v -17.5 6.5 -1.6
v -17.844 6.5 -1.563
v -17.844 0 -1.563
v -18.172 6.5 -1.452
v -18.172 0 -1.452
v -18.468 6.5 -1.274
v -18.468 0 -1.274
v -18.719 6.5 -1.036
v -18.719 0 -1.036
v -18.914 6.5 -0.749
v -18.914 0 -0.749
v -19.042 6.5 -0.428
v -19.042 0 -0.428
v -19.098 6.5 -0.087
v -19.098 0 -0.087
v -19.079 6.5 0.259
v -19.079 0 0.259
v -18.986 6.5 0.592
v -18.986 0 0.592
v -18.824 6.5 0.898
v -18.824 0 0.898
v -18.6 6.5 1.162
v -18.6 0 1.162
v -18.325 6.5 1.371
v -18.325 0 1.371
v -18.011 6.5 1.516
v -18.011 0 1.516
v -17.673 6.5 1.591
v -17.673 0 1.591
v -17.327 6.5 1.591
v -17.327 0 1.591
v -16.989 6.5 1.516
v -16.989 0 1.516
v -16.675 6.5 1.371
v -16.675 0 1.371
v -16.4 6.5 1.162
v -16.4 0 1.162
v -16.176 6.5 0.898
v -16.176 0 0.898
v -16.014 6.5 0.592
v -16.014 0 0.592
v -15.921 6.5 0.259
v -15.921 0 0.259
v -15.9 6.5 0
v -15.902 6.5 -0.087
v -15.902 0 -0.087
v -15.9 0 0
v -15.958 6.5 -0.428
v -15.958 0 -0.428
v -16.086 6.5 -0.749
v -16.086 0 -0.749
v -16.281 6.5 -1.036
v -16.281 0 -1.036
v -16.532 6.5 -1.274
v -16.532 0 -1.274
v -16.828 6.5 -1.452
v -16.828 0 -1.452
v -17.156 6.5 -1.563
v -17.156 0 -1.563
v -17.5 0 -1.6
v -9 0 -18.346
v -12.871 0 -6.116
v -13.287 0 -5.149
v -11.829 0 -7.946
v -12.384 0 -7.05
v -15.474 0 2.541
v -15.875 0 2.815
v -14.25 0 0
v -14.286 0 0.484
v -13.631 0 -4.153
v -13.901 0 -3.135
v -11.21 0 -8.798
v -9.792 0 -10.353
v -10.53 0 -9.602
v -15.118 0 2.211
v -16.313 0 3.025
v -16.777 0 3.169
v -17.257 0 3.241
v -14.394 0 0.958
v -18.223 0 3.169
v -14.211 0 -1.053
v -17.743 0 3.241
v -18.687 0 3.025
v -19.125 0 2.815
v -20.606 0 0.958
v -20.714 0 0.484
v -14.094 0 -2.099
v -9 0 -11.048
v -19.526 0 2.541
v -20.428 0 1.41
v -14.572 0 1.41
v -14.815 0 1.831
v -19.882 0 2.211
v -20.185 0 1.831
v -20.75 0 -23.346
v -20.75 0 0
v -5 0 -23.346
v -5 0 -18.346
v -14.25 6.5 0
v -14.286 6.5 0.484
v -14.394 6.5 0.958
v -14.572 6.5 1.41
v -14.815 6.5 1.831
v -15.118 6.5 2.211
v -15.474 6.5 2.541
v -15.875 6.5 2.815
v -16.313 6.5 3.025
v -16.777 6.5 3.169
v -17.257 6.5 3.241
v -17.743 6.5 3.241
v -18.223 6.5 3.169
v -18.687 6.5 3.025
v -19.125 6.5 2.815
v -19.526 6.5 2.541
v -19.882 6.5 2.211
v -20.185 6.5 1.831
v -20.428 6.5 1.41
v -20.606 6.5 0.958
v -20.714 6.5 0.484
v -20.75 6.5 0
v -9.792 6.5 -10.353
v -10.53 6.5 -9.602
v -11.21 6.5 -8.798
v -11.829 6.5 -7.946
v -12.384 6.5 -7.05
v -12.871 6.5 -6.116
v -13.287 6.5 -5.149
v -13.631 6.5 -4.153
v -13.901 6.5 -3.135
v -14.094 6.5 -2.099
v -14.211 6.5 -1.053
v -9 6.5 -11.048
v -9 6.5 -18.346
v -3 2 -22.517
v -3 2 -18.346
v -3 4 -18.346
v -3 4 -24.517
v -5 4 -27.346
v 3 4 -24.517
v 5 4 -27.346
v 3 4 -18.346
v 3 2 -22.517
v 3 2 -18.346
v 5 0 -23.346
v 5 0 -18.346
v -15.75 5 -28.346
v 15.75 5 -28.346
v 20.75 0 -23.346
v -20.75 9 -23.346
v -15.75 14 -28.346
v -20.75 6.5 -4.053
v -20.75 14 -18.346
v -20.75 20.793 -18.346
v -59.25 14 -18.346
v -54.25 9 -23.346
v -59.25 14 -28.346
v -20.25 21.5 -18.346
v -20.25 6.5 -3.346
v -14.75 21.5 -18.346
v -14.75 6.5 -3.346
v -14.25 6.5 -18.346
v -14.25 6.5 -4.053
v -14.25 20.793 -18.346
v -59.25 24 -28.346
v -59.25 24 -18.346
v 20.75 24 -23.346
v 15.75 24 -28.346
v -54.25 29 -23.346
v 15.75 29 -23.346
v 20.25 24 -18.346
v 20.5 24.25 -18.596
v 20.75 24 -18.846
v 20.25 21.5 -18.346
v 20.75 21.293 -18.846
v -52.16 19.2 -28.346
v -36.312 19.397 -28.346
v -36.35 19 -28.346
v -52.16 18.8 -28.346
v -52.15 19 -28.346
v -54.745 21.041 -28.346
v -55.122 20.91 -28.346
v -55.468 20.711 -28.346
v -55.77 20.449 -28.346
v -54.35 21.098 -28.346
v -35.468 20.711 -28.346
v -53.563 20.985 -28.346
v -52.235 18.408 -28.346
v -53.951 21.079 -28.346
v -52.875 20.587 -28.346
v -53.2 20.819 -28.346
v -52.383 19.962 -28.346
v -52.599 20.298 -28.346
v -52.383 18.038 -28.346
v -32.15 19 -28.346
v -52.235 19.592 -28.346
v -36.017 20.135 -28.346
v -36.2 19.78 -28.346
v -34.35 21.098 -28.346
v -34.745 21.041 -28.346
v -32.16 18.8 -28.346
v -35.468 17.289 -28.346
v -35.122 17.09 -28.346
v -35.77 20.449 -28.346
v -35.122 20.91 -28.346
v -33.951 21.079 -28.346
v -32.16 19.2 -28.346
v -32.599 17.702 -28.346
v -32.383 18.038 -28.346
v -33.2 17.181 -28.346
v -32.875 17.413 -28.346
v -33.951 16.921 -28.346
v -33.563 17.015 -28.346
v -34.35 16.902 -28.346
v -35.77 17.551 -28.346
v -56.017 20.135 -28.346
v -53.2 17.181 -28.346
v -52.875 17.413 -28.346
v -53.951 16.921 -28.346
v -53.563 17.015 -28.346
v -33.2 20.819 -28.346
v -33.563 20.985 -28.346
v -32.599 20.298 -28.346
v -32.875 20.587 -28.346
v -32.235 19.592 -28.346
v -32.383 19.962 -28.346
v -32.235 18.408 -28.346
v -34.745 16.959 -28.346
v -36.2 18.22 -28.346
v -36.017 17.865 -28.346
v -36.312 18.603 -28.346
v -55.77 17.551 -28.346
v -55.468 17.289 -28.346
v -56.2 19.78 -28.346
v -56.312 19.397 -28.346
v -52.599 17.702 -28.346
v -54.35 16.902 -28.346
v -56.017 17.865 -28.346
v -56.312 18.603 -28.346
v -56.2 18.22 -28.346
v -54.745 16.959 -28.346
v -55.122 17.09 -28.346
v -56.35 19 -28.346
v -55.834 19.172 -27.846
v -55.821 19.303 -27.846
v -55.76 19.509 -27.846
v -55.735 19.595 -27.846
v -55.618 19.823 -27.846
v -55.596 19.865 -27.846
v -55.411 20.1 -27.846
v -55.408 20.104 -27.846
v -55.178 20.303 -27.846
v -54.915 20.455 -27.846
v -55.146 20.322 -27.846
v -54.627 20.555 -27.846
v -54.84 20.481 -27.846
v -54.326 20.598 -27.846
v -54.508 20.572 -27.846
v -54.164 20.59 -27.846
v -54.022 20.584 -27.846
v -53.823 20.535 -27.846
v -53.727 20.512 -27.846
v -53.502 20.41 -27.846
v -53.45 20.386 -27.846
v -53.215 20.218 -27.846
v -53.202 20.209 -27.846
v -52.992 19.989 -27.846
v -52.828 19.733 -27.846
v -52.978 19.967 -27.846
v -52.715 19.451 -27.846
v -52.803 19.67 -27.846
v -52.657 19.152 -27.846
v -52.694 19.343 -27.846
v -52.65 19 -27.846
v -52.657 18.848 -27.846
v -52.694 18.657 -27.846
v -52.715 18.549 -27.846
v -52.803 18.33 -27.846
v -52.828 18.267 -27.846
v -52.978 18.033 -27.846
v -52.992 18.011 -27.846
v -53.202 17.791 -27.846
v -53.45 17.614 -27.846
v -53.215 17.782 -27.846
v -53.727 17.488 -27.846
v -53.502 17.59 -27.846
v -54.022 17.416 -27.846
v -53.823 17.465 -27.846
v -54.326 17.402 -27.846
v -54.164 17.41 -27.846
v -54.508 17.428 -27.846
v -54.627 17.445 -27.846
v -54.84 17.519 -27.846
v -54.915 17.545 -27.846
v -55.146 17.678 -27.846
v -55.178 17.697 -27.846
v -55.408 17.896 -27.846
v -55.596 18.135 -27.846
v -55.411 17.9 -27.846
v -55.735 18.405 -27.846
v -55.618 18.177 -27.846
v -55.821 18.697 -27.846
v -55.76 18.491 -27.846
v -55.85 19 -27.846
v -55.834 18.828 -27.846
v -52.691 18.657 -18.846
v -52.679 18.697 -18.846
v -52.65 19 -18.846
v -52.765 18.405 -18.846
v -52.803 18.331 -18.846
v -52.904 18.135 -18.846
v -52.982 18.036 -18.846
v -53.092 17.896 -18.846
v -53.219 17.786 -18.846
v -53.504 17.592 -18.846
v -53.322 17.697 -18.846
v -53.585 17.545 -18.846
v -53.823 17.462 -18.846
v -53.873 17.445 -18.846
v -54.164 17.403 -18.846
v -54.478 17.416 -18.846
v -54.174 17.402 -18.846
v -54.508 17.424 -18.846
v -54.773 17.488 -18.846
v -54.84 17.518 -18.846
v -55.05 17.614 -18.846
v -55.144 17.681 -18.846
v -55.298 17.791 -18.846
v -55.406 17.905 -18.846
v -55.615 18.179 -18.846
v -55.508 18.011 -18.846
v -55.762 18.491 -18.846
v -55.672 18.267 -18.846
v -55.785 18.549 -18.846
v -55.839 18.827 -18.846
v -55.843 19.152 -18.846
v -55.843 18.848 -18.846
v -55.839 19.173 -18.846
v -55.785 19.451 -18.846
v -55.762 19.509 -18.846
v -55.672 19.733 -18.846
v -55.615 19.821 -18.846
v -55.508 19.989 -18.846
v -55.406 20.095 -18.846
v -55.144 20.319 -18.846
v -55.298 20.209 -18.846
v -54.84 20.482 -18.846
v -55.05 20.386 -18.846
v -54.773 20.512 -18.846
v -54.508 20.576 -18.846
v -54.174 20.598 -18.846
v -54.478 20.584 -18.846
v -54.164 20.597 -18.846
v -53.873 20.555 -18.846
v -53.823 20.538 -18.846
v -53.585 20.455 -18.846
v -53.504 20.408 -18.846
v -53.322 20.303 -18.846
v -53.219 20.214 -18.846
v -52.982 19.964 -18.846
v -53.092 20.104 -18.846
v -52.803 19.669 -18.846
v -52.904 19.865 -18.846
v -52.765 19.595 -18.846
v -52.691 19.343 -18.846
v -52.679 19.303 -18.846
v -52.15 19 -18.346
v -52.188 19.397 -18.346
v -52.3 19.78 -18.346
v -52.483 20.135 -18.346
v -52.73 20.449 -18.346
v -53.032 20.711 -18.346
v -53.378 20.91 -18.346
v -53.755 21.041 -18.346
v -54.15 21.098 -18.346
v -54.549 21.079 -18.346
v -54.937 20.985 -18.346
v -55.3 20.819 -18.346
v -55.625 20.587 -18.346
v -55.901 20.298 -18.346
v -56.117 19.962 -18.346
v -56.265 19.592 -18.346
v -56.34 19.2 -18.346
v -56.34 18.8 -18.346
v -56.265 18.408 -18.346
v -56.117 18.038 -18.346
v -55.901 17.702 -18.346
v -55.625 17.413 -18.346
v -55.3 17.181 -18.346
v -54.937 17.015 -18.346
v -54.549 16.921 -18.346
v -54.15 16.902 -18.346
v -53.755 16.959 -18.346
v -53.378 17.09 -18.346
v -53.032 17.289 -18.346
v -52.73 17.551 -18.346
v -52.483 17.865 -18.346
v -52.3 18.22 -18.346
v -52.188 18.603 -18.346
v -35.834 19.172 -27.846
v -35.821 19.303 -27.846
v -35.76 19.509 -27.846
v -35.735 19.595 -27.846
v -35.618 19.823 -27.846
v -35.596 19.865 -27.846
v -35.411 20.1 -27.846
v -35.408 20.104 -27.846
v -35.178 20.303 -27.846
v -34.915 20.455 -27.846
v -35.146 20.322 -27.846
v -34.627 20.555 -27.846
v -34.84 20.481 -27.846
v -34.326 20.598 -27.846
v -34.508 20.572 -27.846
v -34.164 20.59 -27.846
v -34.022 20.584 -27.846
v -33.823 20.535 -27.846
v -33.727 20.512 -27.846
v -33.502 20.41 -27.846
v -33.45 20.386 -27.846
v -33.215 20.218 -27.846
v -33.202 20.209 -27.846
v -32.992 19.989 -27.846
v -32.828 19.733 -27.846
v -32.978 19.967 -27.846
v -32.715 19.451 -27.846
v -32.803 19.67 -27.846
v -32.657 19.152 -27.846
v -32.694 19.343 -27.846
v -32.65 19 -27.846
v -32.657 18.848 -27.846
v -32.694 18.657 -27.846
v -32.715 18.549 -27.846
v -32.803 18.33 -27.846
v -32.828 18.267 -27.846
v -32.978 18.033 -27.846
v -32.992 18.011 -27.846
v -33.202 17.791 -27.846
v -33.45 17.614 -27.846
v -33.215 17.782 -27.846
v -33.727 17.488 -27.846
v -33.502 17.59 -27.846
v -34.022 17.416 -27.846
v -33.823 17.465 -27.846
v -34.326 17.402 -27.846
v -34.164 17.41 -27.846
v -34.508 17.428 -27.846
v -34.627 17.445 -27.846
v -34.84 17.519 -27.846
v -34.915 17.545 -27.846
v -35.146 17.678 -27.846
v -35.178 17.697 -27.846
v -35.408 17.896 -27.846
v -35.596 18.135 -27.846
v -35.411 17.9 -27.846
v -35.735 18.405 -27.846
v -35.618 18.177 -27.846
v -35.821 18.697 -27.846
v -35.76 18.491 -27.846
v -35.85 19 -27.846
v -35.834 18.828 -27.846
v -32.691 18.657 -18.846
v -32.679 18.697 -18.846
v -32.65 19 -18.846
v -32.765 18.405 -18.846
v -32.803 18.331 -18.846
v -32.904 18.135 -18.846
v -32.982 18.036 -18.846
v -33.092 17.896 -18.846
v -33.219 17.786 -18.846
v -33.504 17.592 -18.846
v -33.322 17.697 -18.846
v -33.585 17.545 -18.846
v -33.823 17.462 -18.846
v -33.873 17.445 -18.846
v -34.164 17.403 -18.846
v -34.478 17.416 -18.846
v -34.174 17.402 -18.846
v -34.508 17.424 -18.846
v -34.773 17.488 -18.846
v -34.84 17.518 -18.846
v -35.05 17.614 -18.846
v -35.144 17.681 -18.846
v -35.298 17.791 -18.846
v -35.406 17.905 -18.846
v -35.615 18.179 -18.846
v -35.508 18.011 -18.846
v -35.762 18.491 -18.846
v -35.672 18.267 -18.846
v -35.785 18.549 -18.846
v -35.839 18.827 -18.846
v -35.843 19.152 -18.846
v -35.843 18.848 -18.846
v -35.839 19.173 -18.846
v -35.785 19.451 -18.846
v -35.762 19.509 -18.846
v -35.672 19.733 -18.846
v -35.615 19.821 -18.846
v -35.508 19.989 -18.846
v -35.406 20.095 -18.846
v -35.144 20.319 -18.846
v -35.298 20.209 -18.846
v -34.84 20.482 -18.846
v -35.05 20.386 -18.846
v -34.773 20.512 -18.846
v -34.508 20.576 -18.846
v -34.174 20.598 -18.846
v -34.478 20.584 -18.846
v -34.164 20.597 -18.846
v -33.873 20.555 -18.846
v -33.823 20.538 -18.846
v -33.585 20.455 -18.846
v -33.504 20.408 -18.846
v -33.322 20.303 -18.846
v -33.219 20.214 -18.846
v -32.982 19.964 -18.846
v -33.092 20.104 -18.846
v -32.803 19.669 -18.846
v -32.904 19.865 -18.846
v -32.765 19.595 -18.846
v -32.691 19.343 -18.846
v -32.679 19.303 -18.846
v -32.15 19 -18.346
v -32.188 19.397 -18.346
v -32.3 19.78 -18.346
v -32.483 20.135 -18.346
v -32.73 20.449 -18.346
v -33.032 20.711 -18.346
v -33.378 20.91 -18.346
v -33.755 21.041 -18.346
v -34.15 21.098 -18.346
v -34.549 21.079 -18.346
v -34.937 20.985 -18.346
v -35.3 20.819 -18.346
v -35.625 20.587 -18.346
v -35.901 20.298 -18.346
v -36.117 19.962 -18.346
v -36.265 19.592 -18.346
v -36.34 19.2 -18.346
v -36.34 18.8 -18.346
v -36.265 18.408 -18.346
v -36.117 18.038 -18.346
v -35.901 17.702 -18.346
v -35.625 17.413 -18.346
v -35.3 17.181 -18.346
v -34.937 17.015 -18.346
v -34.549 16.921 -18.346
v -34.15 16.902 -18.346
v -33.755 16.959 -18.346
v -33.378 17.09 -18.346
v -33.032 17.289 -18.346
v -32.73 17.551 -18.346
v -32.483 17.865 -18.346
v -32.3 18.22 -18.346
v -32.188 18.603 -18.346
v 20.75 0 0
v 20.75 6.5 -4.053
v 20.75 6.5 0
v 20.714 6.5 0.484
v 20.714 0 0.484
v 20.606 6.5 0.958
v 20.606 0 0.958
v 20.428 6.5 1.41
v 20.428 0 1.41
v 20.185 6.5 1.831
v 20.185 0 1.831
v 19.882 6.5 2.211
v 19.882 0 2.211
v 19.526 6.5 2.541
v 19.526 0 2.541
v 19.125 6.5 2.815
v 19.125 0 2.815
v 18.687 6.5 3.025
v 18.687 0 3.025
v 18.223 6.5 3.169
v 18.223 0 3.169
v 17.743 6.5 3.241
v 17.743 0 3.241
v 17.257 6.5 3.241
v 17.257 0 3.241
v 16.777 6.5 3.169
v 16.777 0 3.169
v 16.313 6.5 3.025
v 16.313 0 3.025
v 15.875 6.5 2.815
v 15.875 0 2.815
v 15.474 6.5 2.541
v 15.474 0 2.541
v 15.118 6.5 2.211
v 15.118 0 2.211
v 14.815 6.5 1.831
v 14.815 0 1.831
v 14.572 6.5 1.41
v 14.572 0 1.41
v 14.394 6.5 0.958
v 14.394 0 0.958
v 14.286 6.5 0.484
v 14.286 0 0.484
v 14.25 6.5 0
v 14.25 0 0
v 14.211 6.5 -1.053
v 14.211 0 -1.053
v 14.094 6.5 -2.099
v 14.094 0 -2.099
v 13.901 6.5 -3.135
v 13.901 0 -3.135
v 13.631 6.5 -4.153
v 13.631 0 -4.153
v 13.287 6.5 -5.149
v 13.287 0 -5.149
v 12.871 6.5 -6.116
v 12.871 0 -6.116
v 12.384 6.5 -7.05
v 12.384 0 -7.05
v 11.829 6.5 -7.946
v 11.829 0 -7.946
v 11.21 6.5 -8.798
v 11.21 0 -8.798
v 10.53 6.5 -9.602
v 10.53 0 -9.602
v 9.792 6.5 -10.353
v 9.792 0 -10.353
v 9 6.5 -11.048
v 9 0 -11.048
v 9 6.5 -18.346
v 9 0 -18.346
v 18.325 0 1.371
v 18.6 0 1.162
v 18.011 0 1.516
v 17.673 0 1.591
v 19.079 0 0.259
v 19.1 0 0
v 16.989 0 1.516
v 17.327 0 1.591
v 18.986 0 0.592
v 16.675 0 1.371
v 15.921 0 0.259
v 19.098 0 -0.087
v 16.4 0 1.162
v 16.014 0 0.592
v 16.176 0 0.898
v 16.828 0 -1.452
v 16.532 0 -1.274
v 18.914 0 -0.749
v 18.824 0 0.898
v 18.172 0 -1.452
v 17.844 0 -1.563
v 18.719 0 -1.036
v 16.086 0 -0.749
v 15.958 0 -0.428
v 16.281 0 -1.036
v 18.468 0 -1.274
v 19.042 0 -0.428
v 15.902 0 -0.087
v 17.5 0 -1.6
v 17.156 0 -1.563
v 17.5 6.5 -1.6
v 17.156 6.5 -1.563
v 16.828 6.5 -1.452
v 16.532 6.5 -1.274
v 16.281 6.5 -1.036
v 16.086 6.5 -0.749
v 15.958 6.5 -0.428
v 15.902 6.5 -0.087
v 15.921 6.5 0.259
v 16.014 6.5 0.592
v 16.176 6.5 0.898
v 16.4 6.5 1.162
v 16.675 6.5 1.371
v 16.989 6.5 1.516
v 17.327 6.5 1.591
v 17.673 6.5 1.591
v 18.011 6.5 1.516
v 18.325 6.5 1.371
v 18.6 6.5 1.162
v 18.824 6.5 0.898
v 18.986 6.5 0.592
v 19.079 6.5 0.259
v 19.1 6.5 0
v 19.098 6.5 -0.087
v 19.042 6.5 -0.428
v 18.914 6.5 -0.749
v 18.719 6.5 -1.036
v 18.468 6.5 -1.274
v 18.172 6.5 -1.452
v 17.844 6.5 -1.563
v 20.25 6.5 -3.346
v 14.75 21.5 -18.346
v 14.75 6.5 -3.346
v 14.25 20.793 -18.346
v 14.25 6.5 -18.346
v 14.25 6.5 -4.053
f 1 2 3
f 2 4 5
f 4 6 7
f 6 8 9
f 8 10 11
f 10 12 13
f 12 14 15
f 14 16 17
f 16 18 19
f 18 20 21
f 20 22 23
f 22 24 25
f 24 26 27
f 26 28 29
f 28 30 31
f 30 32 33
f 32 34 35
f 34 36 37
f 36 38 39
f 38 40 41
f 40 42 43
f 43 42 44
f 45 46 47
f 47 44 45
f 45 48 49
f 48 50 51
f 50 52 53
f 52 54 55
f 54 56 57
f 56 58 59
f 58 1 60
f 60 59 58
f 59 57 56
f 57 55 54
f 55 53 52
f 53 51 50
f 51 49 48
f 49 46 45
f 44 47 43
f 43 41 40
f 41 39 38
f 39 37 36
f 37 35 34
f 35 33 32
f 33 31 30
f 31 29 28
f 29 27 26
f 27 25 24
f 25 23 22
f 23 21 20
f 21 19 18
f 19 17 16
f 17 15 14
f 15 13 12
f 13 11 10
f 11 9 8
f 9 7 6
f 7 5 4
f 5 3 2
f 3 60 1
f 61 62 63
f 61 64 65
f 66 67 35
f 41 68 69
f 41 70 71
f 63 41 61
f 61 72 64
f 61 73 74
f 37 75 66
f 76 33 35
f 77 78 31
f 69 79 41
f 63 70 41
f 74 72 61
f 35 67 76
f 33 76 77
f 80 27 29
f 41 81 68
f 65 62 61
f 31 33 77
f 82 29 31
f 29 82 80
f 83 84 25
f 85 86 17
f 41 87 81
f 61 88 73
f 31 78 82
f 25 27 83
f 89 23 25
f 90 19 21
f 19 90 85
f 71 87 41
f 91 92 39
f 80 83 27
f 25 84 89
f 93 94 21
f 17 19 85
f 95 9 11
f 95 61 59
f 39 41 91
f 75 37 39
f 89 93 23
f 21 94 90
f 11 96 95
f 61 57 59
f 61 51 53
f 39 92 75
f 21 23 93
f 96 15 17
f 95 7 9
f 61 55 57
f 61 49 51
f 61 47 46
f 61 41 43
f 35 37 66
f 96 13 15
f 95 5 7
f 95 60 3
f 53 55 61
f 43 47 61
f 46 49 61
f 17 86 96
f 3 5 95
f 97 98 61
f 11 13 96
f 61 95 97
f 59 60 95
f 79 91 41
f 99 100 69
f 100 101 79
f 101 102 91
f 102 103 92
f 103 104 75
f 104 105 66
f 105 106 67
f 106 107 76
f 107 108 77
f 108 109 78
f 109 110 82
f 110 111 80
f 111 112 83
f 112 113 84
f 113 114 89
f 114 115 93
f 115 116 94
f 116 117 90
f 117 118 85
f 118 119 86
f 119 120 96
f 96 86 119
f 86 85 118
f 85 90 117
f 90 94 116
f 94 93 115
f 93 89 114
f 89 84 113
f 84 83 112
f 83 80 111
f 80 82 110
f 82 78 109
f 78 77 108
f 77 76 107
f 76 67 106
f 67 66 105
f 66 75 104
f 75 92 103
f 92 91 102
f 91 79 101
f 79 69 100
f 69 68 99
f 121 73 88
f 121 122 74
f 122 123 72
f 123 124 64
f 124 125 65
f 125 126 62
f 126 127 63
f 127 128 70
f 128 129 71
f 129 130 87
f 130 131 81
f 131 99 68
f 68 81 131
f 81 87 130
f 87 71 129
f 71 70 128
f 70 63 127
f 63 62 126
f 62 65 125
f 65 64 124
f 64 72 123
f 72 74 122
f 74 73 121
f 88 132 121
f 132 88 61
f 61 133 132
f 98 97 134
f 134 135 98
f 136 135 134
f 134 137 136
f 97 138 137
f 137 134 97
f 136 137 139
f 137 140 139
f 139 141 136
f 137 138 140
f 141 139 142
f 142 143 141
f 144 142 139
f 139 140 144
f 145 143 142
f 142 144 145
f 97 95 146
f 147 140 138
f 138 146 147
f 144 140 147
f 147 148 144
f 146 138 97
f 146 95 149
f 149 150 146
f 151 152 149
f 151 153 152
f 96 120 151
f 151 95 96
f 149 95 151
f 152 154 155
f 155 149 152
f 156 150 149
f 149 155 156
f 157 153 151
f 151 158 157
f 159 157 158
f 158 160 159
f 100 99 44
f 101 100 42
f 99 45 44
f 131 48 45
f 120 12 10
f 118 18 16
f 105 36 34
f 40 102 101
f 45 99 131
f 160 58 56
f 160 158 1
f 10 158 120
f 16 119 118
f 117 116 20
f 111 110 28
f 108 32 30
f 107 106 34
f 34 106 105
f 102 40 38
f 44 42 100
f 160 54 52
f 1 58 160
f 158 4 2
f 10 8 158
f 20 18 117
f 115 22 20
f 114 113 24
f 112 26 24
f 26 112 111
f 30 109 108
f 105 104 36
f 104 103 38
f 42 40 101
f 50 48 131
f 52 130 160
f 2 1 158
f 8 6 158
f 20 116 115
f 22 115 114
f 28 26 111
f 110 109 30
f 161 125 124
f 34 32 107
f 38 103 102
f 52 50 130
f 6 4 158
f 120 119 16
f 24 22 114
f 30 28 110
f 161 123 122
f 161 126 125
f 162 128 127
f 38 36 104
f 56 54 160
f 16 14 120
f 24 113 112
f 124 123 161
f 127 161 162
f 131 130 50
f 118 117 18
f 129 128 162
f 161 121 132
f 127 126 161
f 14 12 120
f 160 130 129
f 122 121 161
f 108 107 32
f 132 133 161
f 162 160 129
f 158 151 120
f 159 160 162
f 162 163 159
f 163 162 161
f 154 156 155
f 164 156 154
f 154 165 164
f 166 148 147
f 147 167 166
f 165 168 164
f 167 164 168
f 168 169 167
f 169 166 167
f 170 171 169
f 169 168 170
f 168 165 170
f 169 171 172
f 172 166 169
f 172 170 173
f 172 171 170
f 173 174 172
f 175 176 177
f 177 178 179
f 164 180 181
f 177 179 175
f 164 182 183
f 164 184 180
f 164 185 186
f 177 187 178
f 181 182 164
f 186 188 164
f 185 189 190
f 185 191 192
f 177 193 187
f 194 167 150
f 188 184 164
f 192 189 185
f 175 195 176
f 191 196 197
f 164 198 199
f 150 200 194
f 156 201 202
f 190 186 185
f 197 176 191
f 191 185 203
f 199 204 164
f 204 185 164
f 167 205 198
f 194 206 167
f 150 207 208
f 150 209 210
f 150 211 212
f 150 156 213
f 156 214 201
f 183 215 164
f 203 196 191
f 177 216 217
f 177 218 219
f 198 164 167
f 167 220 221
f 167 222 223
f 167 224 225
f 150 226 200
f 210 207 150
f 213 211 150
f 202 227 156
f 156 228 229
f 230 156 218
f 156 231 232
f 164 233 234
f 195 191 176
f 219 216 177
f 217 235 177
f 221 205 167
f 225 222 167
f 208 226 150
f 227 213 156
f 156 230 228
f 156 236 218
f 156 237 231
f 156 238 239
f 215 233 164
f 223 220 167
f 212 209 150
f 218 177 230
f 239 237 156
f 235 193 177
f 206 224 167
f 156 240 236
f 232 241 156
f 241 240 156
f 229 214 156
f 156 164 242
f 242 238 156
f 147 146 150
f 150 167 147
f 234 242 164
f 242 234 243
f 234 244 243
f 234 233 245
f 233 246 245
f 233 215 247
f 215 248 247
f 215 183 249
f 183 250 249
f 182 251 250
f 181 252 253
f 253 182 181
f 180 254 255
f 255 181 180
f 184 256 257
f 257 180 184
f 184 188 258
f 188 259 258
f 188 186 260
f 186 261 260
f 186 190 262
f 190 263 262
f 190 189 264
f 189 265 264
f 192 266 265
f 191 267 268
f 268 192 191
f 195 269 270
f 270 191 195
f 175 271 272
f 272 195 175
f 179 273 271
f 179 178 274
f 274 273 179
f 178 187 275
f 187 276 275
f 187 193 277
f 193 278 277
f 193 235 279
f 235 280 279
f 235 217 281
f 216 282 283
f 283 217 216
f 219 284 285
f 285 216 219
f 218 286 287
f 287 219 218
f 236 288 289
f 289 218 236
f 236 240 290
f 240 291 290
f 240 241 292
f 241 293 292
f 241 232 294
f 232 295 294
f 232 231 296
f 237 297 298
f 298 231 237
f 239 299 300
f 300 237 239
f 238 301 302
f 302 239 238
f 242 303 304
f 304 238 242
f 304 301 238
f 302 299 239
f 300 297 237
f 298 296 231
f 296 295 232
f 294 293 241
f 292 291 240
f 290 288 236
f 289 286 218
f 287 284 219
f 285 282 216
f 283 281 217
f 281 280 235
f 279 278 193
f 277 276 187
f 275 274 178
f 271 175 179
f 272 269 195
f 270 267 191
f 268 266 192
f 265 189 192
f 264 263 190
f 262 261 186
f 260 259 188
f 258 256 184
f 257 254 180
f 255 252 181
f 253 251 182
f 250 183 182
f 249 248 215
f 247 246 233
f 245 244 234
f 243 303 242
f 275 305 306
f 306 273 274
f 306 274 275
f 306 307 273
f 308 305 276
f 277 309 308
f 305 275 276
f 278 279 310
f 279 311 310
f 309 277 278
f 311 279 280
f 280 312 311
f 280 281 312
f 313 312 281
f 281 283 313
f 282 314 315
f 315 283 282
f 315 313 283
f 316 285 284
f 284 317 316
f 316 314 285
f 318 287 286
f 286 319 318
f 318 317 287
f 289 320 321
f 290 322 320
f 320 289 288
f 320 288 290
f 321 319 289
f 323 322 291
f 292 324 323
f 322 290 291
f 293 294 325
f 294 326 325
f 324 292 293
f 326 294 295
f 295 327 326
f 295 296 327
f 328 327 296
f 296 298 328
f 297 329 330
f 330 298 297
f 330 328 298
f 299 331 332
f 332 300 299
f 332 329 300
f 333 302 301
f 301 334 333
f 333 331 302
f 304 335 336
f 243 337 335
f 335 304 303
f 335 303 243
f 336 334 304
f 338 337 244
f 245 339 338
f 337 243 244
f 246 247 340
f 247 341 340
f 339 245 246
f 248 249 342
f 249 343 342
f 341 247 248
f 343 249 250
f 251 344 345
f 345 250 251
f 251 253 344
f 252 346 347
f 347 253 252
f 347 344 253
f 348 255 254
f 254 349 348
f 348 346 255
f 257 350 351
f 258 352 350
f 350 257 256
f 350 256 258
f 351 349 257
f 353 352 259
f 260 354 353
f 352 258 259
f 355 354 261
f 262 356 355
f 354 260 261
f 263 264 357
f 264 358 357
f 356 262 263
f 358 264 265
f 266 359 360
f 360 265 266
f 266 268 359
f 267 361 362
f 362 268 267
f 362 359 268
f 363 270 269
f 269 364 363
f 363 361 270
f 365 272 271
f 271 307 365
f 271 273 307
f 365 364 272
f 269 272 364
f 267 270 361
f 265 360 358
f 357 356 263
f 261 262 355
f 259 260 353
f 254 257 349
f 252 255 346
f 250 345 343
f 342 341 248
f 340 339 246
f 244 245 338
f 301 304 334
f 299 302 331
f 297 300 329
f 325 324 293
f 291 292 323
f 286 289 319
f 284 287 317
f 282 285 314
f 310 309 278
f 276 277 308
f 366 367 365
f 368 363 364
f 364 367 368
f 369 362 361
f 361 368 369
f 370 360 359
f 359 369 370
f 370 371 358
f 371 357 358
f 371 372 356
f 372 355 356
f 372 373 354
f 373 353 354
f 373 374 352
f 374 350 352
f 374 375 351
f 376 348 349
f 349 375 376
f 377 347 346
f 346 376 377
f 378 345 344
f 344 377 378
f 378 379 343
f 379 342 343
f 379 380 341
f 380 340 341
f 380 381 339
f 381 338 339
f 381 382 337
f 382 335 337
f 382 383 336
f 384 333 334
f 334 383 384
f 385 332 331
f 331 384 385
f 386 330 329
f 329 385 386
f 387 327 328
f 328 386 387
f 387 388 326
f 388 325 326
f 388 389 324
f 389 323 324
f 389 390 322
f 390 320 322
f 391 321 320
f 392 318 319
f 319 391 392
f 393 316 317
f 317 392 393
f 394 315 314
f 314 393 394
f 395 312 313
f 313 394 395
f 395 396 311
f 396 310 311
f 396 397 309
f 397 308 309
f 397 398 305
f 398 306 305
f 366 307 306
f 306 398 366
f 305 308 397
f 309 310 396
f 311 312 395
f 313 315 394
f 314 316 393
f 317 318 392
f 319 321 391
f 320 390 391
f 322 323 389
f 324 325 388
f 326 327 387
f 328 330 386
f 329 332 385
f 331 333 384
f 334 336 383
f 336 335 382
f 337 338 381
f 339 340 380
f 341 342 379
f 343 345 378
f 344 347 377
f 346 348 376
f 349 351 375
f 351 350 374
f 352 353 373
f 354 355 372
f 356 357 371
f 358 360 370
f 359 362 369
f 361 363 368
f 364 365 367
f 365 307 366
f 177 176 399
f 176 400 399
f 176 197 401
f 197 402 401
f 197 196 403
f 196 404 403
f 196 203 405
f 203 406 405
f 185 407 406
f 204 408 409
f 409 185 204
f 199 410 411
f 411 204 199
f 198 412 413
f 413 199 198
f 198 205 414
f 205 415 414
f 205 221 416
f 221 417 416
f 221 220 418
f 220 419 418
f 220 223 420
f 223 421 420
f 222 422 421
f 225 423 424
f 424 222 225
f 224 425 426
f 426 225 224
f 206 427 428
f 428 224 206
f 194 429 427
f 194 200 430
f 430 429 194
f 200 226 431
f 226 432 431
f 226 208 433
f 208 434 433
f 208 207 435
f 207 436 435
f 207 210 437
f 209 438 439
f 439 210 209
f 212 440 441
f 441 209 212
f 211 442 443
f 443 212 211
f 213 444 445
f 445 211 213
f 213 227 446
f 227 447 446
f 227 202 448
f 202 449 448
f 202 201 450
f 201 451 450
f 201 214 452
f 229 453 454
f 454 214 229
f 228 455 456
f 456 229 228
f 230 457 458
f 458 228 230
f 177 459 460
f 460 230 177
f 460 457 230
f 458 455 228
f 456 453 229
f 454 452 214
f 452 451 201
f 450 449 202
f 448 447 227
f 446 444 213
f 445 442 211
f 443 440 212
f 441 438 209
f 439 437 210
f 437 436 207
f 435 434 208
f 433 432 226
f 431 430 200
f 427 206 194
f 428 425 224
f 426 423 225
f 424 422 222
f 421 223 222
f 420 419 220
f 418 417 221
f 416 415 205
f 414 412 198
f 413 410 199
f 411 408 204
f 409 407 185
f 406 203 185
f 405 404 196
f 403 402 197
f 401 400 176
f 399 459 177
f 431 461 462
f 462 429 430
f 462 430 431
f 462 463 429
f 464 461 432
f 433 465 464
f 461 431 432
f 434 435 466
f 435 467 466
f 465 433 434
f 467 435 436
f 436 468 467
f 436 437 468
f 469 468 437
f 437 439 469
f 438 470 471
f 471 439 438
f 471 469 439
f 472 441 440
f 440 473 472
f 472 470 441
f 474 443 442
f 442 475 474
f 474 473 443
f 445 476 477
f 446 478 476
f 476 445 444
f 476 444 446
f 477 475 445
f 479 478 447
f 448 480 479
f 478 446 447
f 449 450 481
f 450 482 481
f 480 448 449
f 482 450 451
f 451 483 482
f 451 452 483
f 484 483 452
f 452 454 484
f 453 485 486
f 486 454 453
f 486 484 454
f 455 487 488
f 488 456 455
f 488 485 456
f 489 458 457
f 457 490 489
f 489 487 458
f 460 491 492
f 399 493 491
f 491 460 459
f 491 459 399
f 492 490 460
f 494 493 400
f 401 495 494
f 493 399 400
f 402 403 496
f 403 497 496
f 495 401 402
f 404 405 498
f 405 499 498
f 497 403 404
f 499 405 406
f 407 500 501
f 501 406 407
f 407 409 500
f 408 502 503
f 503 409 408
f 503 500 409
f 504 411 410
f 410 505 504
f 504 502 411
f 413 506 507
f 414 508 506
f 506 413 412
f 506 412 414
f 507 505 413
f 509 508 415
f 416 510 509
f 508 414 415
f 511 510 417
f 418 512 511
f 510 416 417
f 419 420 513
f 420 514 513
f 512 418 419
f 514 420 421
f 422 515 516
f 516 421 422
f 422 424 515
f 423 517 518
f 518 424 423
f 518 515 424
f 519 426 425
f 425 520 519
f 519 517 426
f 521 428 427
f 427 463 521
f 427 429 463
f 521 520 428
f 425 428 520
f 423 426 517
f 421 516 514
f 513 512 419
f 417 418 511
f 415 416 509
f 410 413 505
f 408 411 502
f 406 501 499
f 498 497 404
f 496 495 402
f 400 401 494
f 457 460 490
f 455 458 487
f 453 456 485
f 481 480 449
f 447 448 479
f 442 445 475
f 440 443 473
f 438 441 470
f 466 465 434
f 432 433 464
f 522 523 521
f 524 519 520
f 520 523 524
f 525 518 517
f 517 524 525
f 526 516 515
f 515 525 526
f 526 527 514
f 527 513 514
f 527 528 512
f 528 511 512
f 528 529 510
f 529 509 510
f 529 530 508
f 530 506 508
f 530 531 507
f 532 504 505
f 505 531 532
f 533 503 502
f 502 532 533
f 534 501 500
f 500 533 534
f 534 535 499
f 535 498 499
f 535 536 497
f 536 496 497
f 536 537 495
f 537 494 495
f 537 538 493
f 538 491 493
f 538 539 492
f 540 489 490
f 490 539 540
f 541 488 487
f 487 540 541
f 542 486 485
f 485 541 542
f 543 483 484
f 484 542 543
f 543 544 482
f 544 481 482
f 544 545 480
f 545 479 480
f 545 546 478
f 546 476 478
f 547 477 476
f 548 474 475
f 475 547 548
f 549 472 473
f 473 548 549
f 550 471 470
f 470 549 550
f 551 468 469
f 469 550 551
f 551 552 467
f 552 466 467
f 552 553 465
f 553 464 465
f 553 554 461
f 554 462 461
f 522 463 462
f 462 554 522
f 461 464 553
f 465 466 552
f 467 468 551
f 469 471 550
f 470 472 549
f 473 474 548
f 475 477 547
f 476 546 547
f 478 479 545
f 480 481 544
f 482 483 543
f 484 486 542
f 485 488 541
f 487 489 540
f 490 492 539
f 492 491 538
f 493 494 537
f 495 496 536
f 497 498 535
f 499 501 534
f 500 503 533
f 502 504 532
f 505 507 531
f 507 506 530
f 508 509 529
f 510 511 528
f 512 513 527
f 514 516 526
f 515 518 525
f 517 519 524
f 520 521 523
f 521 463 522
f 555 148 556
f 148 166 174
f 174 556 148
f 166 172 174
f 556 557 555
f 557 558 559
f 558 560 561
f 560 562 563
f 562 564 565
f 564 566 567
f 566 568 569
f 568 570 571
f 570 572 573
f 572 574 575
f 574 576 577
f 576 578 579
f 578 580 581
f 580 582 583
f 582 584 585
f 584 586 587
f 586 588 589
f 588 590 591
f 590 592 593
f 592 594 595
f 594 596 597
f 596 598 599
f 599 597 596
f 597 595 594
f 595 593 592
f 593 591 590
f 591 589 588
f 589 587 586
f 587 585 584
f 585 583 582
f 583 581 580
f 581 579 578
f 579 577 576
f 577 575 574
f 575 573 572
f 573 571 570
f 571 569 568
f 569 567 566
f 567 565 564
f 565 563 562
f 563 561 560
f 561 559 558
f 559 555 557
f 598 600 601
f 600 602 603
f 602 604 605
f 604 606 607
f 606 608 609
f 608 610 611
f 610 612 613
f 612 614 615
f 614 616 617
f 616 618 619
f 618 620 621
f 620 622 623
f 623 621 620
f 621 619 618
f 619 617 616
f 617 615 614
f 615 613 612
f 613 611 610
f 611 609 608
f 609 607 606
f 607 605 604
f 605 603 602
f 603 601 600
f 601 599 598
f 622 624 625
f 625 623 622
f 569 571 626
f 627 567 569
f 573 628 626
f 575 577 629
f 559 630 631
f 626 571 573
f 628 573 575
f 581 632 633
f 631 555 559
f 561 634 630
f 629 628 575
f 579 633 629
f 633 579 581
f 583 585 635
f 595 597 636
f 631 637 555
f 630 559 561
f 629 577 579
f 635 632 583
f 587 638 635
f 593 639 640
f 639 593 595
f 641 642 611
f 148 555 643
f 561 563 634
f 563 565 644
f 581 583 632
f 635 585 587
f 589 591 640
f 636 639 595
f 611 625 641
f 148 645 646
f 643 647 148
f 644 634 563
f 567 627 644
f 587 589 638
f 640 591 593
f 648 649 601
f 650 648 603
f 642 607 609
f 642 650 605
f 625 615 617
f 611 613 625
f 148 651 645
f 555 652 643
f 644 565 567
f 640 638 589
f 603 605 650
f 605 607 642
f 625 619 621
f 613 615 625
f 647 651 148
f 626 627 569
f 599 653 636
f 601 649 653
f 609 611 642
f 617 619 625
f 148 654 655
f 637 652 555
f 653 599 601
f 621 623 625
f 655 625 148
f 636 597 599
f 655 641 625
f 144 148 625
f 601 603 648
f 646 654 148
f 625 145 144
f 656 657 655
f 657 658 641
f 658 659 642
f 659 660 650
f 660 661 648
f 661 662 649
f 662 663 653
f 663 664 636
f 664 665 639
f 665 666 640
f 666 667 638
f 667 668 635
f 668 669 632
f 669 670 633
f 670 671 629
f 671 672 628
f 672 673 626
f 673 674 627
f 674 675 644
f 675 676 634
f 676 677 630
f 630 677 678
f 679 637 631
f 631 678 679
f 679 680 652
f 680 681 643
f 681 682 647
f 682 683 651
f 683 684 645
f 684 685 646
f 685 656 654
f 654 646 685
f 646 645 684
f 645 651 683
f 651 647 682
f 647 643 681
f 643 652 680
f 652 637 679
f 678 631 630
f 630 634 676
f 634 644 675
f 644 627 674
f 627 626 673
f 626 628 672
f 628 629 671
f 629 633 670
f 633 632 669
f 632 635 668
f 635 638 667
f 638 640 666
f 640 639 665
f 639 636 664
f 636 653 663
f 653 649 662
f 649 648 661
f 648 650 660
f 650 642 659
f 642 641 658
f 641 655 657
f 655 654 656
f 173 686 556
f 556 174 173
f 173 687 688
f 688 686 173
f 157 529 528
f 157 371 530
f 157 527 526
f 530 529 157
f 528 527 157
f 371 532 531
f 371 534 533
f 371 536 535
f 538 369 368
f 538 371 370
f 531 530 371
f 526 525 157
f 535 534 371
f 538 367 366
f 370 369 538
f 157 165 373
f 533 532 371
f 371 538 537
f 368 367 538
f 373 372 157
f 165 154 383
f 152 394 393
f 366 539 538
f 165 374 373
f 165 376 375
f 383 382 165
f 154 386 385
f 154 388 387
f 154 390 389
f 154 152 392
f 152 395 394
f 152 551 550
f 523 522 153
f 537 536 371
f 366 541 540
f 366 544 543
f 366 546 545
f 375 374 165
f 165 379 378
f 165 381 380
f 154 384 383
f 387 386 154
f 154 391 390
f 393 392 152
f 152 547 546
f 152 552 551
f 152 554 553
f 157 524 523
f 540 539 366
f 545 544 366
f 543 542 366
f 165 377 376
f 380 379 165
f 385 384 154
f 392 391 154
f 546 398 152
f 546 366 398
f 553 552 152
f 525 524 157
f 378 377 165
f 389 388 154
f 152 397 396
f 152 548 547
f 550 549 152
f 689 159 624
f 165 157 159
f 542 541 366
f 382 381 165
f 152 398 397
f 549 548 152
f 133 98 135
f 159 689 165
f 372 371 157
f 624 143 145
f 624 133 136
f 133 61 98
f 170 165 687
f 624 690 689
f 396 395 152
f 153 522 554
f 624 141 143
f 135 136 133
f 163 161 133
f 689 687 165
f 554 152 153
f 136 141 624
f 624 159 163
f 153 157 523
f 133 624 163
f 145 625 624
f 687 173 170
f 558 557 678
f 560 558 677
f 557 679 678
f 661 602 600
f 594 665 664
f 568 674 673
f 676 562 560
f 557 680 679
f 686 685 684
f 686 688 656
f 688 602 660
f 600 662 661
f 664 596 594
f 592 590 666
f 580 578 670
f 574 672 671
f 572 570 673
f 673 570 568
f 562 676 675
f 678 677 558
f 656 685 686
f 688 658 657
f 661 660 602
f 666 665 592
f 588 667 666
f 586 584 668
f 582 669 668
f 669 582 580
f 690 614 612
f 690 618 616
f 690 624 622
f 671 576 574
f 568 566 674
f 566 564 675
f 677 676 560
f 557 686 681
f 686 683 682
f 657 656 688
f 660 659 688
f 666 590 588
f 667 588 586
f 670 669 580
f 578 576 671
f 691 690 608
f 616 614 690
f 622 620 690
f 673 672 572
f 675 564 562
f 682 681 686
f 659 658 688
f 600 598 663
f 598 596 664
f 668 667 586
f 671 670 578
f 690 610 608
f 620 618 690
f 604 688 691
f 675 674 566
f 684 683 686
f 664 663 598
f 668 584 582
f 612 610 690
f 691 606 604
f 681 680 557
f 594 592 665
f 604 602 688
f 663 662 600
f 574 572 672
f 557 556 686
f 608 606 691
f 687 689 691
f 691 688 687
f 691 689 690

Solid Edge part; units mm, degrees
sketch "Sketch1" plane through (0, 0, 0) normal (0, -1, 0) x (1, 0, 0)
  circle A0 centre (-17.5, 0) radius 1.6
  line L0 (-20.75, -18.3456) -> (-20.75, 0)
  line L1 (-9, -18.3456) -> (-20.75, -18.3456)
  line L2 (-9, -11.0482) -> (-9, -18.3456)
  arc A1 (-14.25, 0) -> (-9, -11.0482) centre (0, 0) ccw
  arc A2 (-20.75, 0) -> (-14.25, 0) centre (-17.5, 0) cw
  arc A3 (9, -11.0482) -> (14.25, 0) centre (0, 0) ccw
  arc A4 (14.25, 0) -> (20.75, 0) centre (17.5, 0) cw
  line L3 (20.75, 0) -> (20.75, -18.3456)
  line L4 (20.75, -18.3456) -> (9, -18.3456)
  line L5 (9, -18.3456) -> (9, -11.0482)
  circle A5 centre (17.5, 0) radius 1.6
  dimension "D1" = 35
  dimension "D2" = 17.5
  dimension "D3" = 6.5
  dimension "D4" = 9
  dimension "D5" = 9
extrude "Protrusion1" add sketch "Sketch1" against normal blind 6.5
sketch "Sketch2" plane through (14.875, 3.25, -18.3456) normal (0, 0, -1) x (0, -1, 0)
  line L0 (3.25, -5.875) -> (-25.75, -5.875)
  line L1 (-25.75, -5.875) -> (-25.75, 74.125)
  line L2 (-25.75, 74.125) -> (-5.75, 74.125)
  line L3 (-5.75, 74.125) -> (-5.75, 35.625)
  line L4 (-5.75, 35.625) -> (3.25, 35.625)
  line L5 (3.25, 35.625) -> (3.25, -5.875)
  dimension "D1" = 29
  dimension "D2" = 20
  dimension "D3" = 80
extrude "ExtrudedProtrusion_3" add sketch "Sketch2" along normal blind 10
sketch "Sketch3" plane through (-9.25, 14.5, -28.3456) normal (0, 0, -1) x (0, 1, 0)
  line L0 (-14.5, 12.25) -> (-14.5, 6.25)
  line L1 (-14.5, 6.25) -> (-10.5, 6.25)
  line L2 (-10.5, 6.25) -> (-10.5, 12.25)
  line L3 (-10.5, 12.25) -> (-14.5, 12.25)
  dimension "D1" = 6
  dimension "D2" = 4
extrude "ExtrudedCutout_1" cut sketch "Sketch3" against normal blind 42.3456
sketch "Sketch4" plane through (20.75, 14.5, -14.1728) normal (1, 0, 0) x (0, -1, 0)
  line L0 (-7, 4.1728) -> (8, -10.8272)
  line L1 (8, 4.1728) -> (8, -10.8272)
  line L2 (-7, 4.1728) -> (8, 4.1728)
extrude "Protrusion2" add sketch "Sketch4" against normal up to vertex (41.5 mm away)
sketch "Sketch5" plane through (-9.25, 19, -18.3456) normal (0, 0, 1) x (1, 0, 0)
  line L0 (-5, -12.5) -> (-5, 7.5538)
  line L1 (-5, 7.5538) -> (23.5, 7.5538)
  line L2 (23.5, 7.5538) -> (23.5, -12.5)
  line L3 (23.5, -12.5) -> (-5, -12.5)
extrude "ExtrudedCutout_2" cut sketch "Sketch5" along normal blind 49
sketch "Sketch6" plane through (-19.25, 14.5, -18.3456) normal (0, 0, 1) x (1, 0, 0)
  circle A0 centre (-35, 4.5) radius 1.6
  circle A1 centre (-15, 4.5) radius 1.6
extrude "ExtrudedCutout_3" cut sketch "Sketch6" against normal blind 30
chamfer "Letörés_1" distance 5 angle 45 11 edges at (-40, 9, -28.3456) (-40, 9, -18.3456) (-59.25, 9, -23.3456) (-59.25, 29, -23.3456) (-19.25, 29, -28.3456) (-19.25, 29, -18.3456) (20.75, 29, -23.3456) (20.75, 14.5, -28.3456) (-20.75, 4.5, -28.3456) (11.875, 0, -28.3456) (-11.875, 0, -28.3456)
chamfer "Letörés_3" distance 0.5 angle 45 9 edges at (-20.75, 14, -10.8456) (-14.25, 14, -10.8456) (14.25, 14, -10.8456) (20.75, 14, -10.8456) (20.75, 22.75, -18.3456) (-35.85, 19, -18.3456) (-35.85, 19, -28.3456) (-55.85, 19, -18.3456) (-55.85, 19, -28.3456)
chamfer "Letörés_4" distance 2 angle 45 4 edges at (-3, 0, -20.8456) (-3, 2, -25.3456) (3, 2, -25.3456) (3, 0, -20.8456)
